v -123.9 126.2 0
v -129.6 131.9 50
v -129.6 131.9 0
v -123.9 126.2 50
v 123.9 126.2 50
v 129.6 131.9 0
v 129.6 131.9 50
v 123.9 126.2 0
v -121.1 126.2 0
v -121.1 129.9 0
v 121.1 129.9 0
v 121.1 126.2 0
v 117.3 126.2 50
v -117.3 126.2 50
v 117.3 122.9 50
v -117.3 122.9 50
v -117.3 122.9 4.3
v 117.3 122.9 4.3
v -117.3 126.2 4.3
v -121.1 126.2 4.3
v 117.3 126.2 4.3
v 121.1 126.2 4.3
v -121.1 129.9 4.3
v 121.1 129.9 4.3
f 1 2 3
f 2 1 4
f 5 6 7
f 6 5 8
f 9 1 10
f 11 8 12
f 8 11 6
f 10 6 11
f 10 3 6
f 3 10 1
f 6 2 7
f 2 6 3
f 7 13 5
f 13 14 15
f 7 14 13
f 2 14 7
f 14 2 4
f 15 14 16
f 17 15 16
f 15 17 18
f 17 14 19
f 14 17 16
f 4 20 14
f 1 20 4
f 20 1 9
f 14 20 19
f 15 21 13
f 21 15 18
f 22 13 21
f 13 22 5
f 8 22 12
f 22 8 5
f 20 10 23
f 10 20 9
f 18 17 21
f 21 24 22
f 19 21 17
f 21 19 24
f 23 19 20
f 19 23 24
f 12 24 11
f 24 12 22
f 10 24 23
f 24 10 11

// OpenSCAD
// WheresDat — Shelf back wall, split out from the original fused
// floor+3-walls design in shelf.scad. See shelf_side.scad for the full
// rationale (large flat floor fused to tall walls was warping).
//
// Diagonal-cut at both ends, matching shelf_side.scad's back corner cut
// exactly — each cut runs through the post socket's center, not through
// solid material, so this piece and the two side pieces recombine into
// the full post sockets at both back corners once assembled, pinned by
// the corner post itself.
//
// Same bottom-inner groove as shelf_side.scad: this wall's own bottom
// sits flush on the floor's top surface, and the groove is cut straight
// up into it from there (not into the floor's body) for a raised tongue
// on shelf_floor.scad's edge to glue into.
//
// Supersedes shelf.scad. Not yet rendered/validated — open in the app
// and test-fit both corners before committing to a full run of 8.

/* [Printer] */
max_footprint = 280; // mm

/* [Post geometry — must match shelf_floor.scad and shelf_side.scad] */
post_size      = 6;
post_clearance = 0.3;

/* [Footprint — must match shelf_floor.scad and shelf_side.scad] */
post_spacing_x = 241.2;
post_spacing_y = 245.8;

/* [Wall construction — must match shelf_side.scad] */
min_wall       = 3;
wall_thickness = post_size + min_wall; // 9mm
wall_height    = 50;

/* [Floor tongue groove — must match shelf_side.scad; rabbet_height must
   equal shelf_floor.scad's tongue_height + tongue_clearance, not
   floor_thickness — see shelf_side.scad for the full explanation] */
floor_thickness  = 4; // mm — reference only, not used to size the groove
rabbet_clearance = 0.3; // mm — the tongue's clearance
rabbet_depth     = 7; // see shelf_side.scad for why this was bumped from 6mm
rabbet_height    = 4.3; // tongue_height (4) + tongue_clearance (0.3)

assert(rabbet_depth < wall_thickness,
    str("rabbet_depth (", rabbet_depth, "mm) must leave solid wall material outward of the notch (wall_thickness = ", wall_thickness, "mm)"));

// ---------------------------------------------------------------------
// Derived geometry
// ---------------------------------------------------------------------

floor_x = post_spacing_x + 2 * wall_thickness;
floor_y = post_spacing_y + 2 * wall_thickness;

assert(floor_x <= max_footprint,
    str("Shelf X (", floor_x, "mm) exceeds max_footprint (", max_footprint, "mm)"));
assert(floor_y <= max_footprint,
    str("Shelf Y (", floor_y, "mm) exceeds max_footprint (", max_footprint, "mm)"));

half_fx = floor_x / 2;
half_fy = floor_y / 2;

// Inner face y / diagonal cut point — dead center of each back corner's
// post socket, same points used by shelf_side.scad's matching cuts.
inner_y = post_spacing_y / 2;

module post_socket(x, y) {
    translate([x, y, wall_height / 2])
        cube([post_size + 2 * post_clearance, post_size + 2 * post_clearance, wall_height + 1], center = true);
}

module floor_rabbet() {
    // Notch along the wall's full inner run (post_spacing_x wide, corner
    // to corner). Overshoots the inner face by 0.5mm each side for a
    // clean boolean — no front/back open boundary to clear here since
    // both ends already stop at the diagonal.
    translate([-post_spacing_x / 2 - 0.5, inner_y - 0.5, -0.5])
        cube([post_spacing_x + 1, rabbet_depth + 0.5, rabbet_height + 0.5]);
}

module shelf_back() {
    difference() {
        linear_extrude(height = wall_height)
            polygon([
                [-post_spacing_x / 2, inner_y], // left diagonal point = left post socket center
                [-half_fx, half_fy],             // back-outer-left
                [half_fx, half_fy],              // back-outer-right
                [post_spacing_x / 2, inner_y]    // right diagonal point = right post socket center
            ]);

        post_socket(-post_spacing_x / 2, inner_y); // left corner — this wall's half of the socket
        post_socket(post_spacing_x / 2, inner_y);  // right corner — this wall's half of the socket

        floor_rabbet();
    }
}

shelf_back();
